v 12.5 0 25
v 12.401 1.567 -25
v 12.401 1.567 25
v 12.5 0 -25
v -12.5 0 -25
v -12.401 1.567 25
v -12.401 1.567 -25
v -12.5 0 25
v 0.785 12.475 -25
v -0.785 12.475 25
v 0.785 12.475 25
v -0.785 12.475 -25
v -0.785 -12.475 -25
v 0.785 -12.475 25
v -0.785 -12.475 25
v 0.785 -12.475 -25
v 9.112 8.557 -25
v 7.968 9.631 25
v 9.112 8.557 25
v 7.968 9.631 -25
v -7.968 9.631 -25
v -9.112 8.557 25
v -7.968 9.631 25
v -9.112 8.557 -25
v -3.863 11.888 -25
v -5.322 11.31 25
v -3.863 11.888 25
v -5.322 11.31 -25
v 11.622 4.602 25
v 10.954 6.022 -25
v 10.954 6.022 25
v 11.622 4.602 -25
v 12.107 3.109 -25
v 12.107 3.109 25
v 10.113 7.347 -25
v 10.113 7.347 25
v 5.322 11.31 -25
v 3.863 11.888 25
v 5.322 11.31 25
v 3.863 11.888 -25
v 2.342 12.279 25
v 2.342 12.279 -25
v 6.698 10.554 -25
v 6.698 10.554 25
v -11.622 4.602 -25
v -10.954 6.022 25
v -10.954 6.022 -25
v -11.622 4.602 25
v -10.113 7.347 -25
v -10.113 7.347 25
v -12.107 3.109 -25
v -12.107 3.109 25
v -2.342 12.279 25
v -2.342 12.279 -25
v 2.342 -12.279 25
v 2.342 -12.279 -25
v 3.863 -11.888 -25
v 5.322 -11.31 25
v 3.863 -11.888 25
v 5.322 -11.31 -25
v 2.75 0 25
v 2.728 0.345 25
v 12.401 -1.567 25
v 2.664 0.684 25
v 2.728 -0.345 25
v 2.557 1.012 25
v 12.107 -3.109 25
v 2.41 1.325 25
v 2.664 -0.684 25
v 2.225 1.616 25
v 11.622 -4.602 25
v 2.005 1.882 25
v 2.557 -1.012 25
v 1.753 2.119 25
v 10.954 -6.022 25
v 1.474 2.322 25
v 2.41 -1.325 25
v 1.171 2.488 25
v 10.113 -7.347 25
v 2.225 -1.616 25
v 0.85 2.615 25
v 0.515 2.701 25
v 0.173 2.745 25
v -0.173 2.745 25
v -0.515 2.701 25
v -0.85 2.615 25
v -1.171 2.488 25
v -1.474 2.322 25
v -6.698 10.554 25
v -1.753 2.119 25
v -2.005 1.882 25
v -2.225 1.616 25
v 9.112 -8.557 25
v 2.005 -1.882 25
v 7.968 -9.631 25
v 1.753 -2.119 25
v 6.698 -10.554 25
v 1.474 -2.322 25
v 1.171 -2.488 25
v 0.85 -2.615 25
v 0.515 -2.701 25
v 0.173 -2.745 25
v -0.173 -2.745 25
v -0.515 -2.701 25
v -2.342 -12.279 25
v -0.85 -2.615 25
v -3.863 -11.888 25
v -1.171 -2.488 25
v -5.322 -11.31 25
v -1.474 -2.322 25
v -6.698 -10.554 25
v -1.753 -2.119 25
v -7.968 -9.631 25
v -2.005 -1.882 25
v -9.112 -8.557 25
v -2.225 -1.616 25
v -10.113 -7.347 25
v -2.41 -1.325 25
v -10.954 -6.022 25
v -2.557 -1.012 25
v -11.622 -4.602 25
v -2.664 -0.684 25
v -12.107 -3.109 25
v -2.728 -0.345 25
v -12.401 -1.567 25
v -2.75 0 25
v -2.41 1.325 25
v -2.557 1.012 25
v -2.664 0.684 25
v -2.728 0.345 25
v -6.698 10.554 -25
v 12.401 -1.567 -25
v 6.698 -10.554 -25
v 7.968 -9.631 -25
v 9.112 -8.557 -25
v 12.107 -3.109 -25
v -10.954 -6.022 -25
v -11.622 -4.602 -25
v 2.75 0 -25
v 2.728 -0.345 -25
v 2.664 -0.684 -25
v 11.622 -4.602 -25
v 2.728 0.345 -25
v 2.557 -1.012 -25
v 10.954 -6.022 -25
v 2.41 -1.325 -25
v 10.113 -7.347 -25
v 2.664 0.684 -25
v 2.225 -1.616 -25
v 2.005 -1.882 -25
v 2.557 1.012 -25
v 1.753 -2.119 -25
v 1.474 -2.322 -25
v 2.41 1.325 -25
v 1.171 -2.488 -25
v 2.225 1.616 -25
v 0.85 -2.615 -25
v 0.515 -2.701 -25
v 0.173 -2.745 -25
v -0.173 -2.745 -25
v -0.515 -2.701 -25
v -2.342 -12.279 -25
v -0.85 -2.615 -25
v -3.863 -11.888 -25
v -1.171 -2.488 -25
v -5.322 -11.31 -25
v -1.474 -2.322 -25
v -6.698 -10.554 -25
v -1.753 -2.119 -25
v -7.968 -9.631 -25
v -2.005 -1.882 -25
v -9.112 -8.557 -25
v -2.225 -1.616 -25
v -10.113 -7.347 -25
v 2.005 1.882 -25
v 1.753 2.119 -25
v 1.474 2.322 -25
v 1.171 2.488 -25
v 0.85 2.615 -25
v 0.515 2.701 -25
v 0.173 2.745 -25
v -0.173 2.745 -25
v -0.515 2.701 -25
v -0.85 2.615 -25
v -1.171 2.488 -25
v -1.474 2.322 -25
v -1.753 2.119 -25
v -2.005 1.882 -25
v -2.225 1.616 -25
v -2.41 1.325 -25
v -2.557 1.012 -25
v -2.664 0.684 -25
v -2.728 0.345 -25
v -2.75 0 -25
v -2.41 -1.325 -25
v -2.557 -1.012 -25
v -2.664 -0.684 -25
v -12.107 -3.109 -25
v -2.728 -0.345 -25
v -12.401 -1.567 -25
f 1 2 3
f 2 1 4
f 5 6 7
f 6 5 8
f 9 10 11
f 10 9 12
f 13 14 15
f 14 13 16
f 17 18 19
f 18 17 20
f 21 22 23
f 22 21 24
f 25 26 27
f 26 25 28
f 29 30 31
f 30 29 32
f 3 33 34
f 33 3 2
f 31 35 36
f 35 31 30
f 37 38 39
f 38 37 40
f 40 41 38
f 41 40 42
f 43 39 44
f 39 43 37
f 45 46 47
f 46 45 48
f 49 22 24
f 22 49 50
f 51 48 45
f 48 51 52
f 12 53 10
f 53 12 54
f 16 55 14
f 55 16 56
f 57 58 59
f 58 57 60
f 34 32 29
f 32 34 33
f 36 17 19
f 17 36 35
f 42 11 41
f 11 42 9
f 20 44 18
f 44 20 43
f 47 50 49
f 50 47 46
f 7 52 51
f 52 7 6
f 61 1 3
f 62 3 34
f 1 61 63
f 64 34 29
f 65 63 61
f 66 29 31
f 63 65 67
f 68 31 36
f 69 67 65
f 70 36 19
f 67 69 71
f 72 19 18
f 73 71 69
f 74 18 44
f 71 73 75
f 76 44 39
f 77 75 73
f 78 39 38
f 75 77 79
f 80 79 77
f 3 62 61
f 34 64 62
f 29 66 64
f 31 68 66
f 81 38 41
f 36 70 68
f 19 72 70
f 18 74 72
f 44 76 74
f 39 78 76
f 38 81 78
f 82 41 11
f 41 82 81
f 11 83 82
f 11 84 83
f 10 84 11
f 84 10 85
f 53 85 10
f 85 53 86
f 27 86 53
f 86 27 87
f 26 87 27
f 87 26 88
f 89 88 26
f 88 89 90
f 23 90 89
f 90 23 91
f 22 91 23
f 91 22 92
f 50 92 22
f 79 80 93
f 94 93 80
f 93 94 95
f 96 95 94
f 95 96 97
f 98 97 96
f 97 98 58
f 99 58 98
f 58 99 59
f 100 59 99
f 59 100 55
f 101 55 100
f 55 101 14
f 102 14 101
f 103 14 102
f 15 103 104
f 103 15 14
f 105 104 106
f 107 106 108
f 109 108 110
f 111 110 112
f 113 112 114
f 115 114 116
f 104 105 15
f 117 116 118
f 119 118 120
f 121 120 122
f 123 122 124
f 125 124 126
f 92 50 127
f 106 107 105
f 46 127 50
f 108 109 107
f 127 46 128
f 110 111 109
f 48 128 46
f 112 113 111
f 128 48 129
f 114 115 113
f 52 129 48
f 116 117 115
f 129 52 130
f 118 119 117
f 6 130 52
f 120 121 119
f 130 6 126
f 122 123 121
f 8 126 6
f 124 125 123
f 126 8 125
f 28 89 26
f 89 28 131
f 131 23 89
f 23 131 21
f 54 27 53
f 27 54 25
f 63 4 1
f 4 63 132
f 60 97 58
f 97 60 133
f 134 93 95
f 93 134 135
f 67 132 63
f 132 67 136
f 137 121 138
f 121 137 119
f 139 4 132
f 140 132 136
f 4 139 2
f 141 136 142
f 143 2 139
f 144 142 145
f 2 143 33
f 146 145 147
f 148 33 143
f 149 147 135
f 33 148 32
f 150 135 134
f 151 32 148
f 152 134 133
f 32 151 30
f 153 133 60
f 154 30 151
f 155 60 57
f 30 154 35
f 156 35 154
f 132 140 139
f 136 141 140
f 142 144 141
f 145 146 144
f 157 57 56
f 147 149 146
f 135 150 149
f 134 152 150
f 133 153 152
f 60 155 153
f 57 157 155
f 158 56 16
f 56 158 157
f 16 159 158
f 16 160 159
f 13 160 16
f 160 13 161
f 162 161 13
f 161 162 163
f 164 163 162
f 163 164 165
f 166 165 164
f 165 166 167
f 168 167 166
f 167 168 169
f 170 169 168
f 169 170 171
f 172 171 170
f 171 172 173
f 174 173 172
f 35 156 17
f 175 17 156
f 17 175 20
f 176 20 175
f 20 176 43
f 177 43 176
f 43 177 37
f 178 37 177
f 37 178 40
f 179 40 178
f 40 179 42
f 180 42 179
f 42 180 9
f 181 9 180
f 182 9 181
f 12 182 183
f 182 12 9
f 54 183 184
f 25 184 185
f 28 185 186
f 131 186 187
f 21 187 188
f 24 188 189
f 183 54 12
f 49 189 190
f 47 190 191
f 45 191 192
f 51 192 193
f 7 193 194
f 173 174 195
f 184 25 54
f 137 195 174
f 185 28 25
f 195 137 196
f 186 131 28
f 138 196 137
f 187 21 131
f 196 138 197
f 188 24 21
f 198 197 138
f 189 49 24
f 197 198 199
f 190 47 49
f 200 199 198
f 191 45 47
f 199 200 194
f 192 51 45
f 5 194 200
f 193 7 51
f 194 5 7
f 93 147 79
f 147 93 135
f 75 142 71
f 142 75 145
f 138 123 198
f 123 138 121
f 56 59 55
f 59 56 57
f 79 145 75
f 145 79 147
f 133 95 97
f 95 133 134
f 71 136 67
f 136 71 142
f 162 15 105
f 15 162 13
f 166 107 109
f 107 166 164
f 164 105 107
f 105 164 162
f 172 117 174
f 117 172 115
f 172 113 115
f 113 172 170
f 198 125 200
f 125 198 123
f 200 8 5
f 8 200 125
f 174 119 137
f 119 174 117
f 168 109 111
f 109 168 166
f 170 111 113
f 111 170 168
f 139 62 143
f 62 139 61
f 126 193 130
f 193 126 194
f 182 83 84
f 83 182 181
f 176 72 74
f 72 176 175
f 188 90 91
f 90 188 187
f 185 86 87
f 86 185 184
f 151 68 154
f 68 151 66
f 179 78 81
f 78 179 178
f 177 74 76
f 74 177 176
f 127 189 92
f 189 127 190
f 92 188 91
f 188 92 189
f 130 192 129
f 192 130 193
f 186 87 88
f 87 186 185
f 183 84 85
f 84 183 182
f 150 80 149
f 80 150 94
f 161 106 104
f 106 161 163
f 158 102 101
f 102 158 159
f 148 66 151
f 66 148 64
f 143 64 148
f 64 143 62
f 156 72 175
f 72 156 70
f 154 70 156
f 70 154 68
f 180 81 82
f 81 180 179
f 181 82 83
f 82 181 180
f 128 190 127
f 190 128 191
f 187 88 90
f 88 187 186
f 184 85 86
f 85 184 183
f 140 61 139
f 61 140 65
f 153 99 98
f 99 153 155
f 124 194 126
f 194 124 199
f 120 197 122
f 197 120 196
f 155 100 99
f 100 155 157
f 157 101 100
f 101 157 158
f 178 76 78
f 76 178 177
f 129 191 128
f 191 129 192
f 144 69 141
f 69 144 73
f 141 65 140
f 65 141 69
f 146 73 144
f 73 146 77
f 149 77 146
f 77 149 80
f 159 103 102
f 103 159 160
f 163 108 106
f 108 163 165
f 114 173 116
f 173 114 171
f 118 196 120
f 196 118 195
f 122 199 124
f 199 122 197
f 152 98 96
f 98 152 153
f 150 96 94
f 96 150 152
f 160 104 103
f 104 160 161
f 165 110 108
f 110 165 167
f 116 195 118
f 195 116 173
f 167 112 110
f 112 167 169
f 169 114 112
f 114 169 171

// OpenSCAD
$fn = 50;


difference() {
	union() {
		translate(v = [0, 0, -25.0000000000]) {
			cylinder(h = 50, r = 12.5000000000);
		}
	}
	union() {
		translate(v = [0, 0, -100.0000000000]) {
			cylinder(h = 200, r = 2.7500000000);
		}
	}
}
